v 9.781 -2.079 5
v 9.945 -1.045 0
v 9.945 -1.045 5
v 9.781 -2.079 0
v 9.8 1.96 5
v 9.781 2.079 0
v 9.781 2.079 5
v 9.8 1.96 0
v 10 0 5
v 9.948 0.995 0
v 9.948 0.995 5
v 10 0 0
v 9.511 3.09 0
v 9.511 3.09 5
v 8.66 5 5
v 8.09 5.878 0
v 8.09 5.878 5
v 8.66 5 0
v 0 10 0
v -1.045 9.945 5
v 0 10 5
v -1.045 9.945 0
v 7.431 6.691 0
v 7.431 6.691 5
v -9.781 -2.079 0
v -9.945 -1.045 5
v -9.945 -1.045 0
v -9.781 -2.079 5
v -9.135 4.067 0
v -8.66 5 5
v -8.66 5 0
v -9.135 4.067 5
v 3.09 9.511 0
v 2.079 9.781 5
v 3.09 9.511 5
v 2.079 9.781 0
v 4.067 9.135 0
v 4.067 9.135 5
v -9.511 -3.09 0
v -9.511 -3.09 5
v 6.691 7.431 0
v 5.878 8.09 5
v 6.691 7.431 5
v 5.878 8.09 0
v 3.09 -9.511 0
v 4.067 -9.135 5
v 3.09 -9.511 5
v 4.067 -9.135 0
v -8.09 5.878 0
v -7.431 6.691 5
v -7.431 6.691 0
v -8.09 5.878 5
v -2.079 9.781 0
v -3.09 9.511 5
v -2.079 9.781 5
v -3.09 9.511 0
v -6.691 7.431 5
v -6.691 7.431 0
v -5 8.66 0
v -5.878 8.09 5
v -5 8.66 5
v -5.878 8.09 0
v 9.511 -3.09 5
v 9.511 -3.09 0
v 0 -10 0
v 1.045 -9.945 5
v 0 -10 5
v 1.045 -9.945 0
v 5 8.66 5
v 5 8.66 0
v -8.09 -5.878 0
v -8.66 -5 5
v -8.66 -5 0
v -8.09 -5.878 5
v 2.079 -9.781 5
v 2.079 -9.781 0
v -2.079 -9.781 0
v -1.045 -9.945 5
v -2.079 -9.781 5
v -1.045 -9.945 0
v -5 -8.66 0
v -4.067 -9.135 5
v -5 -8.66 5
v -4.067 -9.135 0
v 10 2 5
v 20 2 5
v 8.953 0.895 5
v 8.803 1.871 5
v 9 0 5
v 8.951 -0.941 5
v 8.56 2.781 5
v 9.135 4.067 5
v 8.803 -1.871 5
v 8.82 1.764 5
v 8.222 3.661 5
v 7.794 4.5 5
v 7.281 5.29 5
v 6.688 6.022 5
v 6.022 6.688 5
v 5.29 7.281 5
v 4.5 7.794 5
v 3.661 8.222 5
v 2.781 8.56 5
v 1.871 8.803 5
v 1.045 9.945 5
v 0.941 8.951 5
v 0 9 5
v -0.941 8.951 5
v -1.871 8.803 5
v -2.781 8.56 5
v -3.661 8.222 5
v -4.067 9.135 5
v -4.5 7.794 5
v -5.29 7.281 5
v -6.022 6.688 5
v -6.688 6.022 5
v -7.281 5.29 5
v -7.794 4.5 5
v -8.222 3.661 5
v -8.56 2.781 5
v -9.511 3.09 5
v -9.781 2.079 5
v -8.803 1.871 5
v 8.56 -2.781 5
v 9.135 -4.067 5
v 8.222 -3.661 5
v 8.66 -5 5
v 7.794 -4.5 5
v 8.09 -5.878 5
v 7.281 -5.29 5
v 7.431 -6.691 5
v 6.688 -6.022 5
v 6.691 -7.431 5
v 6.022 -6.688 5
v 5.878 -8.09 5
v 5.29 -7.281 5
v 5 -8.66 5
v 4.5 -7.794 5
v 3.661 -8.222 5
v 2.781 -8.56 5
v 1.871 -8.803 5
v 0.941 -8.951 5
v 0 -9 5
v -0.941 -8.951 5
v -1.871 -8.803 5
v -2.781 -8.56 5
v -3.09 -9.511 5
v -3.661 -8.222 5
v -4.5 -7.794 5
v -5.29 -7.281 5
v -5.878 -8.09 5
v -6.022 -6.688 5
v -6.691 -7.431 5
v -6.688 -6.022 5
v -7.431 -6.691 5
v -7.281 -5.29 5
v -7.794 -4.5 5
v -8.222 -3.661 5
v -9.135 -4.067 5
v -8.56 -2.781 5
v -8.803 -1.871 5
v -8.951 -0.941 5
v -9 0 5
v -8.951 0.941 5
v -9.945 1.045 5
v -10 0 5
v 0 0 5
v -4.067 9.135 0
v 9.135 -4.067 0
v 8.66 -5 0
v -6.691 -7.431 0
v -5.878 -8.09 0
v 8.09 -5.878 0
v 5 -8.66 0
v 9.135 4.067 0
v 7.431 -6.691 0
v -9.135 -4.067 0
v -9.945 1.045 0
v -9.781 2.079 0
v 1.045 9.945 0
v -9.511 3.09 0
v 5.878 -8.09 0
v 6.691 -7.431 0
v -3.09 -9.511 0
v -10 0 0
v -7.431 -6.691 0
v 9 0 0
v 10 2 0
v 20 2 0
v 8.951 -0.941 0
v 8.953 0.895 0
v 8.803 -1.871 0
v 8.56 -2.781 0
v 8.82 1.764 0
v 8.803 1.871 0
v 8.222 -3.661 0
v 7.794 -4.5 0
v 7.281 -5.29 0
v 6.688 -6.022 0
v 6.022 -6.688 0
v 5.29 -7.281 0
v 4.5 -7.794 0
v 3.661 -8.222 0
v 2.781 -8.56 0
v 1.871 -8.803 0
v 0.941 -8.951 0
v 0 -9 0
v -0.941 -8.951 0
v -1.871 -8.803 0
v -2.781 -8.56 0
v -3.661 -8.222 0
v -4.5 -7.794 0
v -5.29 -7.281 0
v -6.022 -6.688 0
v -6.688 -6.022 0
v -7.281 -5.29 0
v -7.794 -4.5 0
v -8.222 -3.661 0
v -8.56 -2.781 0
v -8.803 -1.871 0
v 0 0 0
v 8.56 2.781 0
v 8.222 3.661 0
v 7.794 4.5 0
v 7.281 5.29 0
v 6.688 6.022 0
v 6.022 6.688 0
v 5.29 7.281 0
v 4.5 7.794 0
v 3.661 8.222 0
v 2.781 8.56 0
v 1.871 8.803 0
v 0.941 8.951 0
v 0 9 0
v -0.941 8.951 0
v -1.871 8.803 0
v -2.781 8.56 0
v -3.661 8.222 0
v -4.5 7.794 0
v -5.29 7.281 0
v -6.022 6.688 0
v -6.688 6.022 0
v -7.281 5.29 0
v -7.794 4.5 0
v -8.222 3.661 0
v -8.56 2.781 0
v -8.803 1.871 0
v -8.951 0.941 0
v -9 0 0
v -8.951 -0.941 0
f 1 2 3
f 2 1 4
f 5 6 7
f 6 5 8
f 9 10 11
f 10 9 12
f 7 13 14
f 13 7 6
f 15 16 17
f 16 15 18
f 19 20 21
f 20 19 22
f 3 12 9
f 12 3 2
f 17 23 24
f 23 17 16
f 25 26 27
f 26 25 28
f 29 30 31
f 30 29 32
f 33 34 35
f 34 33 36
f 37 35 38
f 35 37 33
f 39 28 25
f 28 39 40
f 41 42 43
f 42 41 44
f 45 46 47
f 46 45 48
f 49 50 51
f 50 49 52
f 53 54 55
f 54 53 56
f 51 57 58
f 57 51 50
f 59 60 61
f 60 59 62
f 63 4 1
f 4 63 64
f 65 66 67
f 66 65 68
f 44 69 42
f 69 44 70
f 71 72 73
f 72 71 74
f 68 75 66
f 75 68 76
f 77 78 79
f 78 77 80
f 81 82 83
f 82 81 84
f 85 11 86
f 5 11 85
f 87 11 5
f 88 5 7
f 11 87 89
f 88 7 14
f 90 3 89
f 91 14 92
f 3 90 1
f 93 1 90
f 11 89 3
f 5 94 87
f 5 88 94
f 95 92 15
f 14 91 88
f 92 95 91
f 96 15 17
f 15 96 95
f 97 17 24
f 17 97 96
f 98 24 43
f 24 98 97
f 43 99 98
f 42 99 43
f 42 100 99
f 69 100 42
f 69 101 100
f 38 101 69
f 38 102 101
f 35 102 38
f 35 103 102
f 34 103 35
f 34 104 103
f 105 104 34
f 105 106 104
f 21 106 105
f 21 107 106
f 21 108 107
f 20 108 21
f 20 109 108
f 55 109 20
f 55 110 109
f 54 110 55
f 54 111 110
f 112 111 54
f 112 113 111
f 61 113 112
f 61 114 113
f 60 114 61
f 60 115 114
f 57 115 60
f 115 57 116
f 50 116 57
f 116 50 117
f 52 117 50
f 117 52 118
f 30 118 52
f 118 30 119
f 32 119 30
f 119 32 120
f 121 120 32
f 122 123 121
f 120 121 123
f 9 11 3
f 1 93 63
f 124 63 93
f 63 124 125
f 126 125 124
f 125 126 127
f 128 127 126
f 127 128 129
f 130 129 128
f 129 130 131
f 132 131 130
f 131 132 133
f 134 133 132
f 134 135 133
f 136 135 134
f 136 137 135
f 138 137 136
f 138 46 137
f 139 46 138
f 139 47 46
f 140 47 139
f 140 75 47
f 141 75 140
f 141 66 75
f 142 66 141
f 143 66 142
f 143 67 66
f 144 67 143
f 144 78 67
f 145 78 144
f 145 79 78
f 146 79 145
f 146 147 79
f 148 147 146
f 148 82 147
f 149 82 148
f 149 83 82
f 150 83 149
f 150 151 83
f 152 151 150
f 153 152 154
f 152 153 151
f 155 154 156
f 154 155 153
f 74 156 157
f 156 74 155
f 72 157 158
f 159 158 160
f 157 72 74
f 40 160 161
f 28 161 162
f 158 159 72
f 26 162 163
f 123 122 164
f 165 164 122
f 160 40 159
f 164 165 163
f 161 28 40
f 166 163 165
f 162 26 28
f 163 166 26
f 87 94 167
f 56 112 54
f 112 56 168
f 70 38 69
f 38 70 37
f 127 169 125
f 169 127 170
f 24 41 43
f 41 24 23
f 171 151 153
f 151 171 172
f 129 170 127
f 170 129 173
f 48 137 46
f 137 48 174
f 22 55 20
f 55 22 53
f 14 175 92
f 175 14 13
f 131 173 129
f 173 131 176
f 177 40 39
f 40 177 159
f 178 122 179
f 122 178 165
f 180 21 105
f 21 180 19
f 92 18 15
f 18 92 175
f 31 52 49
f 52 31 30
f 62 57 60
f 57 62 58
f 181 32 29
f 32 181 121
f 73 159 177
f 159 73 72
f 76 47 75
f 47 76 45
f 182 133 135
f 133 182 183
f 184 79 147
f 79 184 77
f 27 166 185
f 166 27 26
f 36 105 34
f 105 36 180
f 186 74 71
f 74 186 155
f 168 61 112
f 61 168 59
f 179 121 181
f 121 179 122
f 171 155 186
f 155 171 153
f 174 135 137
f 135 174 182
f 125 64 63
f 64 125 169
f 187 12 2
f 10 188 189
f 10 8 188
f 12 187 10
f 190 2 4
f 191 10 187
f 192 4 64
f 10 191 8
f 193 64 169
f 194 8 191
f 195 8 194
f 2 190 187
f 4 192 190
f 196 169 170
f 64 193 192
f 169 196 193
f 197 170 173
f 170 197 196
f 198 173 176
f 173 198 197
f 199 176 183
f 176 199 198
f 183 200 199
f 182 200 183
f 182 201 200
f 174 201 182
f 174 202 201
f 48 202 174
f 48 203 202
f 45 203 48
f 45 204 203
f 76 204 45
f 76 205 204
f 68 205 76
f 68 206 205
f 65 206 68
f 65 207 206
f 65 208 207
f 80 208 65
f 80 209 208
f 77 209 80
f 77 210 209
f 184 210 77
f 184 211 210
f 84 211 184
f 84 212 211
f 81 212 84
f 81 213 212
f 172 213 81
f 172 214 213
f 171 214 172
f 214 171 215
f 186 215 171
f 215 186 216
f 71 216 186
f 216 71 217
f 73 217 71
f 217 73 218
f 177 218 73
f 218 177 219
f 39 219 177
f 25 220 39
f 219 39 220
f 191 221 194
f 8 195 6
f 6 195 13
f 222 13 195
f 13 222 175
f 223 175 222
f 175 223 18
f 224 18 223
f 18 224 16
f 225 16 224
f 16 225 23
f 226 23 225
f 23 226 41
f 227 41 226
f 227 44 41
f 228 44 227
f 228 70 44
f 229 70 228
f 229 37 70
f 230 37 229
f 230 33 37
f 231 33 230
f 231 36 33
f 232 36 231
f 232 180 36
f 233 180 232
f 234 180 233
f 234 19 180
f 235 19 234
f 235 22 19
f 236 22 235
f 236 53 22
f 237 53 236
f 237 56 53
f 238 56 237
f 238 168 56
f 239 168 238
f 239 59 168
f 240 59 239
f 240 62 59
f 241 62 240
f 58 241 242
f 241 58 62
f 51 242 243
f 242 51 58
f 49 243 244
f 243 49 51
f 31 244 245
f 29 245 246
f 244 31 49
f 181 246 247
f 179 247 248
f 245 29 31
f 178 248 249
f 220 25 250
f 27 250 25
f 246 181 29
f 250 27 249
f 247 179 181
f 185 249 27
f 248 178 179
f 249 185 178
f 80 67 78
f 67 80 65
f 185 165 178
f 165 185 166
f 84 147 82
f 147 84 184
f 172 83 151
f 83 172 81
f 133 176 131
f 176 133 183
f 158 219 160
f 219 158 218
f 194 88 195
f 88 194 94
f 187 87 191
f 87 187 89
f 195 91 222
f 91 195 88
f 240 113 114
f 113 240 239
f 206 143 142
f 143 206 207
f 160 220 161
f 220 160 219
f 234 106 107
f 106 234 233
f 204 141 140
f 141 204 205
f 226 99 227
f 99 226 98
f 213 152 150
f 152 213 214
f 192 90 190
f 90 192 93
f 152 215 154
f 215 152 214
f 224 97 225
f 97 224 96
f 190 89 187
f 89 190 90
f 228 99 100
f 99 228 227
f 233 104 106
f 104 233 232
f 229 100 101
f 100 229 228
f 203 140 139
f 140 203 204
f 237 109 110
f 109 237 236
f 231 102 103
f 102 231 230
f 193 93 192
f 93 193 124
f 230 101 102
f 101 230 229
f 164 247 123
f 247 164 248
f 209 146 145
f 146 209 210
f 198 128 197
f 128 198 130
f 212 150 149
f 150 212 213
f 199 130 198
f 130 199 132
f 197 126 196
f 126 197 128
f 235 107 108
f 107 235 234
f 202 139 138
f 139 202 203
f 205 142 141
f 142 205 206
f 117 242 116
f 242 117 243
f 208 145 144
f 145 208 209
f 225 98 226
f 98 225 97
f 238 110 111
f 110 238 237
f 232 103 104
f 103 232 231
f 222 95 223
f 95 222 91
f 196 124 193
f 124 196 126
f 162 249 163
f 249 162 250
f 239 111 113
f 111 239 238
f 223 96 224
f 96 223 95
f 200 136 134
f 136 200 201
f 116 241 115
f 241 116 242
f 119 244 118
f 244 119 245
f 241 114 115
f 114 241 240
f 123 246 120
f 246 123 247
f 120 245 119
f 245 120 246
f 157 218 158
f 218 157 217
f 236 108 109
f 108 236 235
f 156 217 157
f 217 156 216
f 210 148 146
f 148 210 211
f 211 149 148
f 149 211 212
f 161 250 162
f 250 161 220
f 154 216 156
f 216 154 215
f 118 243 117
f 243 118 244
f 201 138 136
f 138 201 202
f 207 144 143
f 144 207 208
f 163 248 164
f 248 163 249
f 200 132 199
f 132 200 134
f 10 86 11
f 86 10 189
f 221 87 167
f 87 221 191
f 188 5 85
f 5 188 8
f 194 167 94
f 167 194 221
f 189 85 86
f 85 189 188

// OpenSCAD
// Parameters
radius = 10;
width = 20;
height = 5;
wall_thickness = 1;
chamfer_radius = 2;

module julia_set(r, w, h, tt, cr) {
    difference() {
        cylinder(h = h, r = r, $fn = 60);
        translate([0, 0, -1])
            cylinder(h = h + 2, r = r - tt, $fn = 60);
    }
    
    // Chamfered edges
    for (i = [0:3]) {
        translate([0, 0, i * (height / 4)]) {
            linear_extrude(height = height / 4)
                polygon([
                    [0, 0],
                    [w / 2, cr],
                    [w, cr]
                ]);
        }
    }
}

julia_set(radius, width, height, wall_thickness, chamfer_radius);
